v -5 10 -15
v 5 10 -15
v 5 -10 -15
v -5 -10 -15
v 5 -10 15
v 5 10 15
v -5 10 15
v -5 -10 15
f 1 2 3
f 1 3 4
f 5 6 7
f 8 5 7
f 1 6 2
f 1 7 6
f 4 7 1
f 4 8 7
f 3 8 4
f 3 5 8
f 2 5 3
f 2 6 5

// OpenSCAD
linear_extrude(height = 30.0, center = true, twist = 0.0, scale = 1.0, slices = 1, convexity = 1)
{
    M14();
}

module M14()
{
    scale([10.0, 20.0])
    {
        M8();
    }
}

module M8()
{
    polygon
    (
        points =
        [
            [0.5, -0.5], [0.5, 0.5], [-0.5, 0.5], [-0.5, -0.5]
        ]
        , convexity = 1
    );
}
